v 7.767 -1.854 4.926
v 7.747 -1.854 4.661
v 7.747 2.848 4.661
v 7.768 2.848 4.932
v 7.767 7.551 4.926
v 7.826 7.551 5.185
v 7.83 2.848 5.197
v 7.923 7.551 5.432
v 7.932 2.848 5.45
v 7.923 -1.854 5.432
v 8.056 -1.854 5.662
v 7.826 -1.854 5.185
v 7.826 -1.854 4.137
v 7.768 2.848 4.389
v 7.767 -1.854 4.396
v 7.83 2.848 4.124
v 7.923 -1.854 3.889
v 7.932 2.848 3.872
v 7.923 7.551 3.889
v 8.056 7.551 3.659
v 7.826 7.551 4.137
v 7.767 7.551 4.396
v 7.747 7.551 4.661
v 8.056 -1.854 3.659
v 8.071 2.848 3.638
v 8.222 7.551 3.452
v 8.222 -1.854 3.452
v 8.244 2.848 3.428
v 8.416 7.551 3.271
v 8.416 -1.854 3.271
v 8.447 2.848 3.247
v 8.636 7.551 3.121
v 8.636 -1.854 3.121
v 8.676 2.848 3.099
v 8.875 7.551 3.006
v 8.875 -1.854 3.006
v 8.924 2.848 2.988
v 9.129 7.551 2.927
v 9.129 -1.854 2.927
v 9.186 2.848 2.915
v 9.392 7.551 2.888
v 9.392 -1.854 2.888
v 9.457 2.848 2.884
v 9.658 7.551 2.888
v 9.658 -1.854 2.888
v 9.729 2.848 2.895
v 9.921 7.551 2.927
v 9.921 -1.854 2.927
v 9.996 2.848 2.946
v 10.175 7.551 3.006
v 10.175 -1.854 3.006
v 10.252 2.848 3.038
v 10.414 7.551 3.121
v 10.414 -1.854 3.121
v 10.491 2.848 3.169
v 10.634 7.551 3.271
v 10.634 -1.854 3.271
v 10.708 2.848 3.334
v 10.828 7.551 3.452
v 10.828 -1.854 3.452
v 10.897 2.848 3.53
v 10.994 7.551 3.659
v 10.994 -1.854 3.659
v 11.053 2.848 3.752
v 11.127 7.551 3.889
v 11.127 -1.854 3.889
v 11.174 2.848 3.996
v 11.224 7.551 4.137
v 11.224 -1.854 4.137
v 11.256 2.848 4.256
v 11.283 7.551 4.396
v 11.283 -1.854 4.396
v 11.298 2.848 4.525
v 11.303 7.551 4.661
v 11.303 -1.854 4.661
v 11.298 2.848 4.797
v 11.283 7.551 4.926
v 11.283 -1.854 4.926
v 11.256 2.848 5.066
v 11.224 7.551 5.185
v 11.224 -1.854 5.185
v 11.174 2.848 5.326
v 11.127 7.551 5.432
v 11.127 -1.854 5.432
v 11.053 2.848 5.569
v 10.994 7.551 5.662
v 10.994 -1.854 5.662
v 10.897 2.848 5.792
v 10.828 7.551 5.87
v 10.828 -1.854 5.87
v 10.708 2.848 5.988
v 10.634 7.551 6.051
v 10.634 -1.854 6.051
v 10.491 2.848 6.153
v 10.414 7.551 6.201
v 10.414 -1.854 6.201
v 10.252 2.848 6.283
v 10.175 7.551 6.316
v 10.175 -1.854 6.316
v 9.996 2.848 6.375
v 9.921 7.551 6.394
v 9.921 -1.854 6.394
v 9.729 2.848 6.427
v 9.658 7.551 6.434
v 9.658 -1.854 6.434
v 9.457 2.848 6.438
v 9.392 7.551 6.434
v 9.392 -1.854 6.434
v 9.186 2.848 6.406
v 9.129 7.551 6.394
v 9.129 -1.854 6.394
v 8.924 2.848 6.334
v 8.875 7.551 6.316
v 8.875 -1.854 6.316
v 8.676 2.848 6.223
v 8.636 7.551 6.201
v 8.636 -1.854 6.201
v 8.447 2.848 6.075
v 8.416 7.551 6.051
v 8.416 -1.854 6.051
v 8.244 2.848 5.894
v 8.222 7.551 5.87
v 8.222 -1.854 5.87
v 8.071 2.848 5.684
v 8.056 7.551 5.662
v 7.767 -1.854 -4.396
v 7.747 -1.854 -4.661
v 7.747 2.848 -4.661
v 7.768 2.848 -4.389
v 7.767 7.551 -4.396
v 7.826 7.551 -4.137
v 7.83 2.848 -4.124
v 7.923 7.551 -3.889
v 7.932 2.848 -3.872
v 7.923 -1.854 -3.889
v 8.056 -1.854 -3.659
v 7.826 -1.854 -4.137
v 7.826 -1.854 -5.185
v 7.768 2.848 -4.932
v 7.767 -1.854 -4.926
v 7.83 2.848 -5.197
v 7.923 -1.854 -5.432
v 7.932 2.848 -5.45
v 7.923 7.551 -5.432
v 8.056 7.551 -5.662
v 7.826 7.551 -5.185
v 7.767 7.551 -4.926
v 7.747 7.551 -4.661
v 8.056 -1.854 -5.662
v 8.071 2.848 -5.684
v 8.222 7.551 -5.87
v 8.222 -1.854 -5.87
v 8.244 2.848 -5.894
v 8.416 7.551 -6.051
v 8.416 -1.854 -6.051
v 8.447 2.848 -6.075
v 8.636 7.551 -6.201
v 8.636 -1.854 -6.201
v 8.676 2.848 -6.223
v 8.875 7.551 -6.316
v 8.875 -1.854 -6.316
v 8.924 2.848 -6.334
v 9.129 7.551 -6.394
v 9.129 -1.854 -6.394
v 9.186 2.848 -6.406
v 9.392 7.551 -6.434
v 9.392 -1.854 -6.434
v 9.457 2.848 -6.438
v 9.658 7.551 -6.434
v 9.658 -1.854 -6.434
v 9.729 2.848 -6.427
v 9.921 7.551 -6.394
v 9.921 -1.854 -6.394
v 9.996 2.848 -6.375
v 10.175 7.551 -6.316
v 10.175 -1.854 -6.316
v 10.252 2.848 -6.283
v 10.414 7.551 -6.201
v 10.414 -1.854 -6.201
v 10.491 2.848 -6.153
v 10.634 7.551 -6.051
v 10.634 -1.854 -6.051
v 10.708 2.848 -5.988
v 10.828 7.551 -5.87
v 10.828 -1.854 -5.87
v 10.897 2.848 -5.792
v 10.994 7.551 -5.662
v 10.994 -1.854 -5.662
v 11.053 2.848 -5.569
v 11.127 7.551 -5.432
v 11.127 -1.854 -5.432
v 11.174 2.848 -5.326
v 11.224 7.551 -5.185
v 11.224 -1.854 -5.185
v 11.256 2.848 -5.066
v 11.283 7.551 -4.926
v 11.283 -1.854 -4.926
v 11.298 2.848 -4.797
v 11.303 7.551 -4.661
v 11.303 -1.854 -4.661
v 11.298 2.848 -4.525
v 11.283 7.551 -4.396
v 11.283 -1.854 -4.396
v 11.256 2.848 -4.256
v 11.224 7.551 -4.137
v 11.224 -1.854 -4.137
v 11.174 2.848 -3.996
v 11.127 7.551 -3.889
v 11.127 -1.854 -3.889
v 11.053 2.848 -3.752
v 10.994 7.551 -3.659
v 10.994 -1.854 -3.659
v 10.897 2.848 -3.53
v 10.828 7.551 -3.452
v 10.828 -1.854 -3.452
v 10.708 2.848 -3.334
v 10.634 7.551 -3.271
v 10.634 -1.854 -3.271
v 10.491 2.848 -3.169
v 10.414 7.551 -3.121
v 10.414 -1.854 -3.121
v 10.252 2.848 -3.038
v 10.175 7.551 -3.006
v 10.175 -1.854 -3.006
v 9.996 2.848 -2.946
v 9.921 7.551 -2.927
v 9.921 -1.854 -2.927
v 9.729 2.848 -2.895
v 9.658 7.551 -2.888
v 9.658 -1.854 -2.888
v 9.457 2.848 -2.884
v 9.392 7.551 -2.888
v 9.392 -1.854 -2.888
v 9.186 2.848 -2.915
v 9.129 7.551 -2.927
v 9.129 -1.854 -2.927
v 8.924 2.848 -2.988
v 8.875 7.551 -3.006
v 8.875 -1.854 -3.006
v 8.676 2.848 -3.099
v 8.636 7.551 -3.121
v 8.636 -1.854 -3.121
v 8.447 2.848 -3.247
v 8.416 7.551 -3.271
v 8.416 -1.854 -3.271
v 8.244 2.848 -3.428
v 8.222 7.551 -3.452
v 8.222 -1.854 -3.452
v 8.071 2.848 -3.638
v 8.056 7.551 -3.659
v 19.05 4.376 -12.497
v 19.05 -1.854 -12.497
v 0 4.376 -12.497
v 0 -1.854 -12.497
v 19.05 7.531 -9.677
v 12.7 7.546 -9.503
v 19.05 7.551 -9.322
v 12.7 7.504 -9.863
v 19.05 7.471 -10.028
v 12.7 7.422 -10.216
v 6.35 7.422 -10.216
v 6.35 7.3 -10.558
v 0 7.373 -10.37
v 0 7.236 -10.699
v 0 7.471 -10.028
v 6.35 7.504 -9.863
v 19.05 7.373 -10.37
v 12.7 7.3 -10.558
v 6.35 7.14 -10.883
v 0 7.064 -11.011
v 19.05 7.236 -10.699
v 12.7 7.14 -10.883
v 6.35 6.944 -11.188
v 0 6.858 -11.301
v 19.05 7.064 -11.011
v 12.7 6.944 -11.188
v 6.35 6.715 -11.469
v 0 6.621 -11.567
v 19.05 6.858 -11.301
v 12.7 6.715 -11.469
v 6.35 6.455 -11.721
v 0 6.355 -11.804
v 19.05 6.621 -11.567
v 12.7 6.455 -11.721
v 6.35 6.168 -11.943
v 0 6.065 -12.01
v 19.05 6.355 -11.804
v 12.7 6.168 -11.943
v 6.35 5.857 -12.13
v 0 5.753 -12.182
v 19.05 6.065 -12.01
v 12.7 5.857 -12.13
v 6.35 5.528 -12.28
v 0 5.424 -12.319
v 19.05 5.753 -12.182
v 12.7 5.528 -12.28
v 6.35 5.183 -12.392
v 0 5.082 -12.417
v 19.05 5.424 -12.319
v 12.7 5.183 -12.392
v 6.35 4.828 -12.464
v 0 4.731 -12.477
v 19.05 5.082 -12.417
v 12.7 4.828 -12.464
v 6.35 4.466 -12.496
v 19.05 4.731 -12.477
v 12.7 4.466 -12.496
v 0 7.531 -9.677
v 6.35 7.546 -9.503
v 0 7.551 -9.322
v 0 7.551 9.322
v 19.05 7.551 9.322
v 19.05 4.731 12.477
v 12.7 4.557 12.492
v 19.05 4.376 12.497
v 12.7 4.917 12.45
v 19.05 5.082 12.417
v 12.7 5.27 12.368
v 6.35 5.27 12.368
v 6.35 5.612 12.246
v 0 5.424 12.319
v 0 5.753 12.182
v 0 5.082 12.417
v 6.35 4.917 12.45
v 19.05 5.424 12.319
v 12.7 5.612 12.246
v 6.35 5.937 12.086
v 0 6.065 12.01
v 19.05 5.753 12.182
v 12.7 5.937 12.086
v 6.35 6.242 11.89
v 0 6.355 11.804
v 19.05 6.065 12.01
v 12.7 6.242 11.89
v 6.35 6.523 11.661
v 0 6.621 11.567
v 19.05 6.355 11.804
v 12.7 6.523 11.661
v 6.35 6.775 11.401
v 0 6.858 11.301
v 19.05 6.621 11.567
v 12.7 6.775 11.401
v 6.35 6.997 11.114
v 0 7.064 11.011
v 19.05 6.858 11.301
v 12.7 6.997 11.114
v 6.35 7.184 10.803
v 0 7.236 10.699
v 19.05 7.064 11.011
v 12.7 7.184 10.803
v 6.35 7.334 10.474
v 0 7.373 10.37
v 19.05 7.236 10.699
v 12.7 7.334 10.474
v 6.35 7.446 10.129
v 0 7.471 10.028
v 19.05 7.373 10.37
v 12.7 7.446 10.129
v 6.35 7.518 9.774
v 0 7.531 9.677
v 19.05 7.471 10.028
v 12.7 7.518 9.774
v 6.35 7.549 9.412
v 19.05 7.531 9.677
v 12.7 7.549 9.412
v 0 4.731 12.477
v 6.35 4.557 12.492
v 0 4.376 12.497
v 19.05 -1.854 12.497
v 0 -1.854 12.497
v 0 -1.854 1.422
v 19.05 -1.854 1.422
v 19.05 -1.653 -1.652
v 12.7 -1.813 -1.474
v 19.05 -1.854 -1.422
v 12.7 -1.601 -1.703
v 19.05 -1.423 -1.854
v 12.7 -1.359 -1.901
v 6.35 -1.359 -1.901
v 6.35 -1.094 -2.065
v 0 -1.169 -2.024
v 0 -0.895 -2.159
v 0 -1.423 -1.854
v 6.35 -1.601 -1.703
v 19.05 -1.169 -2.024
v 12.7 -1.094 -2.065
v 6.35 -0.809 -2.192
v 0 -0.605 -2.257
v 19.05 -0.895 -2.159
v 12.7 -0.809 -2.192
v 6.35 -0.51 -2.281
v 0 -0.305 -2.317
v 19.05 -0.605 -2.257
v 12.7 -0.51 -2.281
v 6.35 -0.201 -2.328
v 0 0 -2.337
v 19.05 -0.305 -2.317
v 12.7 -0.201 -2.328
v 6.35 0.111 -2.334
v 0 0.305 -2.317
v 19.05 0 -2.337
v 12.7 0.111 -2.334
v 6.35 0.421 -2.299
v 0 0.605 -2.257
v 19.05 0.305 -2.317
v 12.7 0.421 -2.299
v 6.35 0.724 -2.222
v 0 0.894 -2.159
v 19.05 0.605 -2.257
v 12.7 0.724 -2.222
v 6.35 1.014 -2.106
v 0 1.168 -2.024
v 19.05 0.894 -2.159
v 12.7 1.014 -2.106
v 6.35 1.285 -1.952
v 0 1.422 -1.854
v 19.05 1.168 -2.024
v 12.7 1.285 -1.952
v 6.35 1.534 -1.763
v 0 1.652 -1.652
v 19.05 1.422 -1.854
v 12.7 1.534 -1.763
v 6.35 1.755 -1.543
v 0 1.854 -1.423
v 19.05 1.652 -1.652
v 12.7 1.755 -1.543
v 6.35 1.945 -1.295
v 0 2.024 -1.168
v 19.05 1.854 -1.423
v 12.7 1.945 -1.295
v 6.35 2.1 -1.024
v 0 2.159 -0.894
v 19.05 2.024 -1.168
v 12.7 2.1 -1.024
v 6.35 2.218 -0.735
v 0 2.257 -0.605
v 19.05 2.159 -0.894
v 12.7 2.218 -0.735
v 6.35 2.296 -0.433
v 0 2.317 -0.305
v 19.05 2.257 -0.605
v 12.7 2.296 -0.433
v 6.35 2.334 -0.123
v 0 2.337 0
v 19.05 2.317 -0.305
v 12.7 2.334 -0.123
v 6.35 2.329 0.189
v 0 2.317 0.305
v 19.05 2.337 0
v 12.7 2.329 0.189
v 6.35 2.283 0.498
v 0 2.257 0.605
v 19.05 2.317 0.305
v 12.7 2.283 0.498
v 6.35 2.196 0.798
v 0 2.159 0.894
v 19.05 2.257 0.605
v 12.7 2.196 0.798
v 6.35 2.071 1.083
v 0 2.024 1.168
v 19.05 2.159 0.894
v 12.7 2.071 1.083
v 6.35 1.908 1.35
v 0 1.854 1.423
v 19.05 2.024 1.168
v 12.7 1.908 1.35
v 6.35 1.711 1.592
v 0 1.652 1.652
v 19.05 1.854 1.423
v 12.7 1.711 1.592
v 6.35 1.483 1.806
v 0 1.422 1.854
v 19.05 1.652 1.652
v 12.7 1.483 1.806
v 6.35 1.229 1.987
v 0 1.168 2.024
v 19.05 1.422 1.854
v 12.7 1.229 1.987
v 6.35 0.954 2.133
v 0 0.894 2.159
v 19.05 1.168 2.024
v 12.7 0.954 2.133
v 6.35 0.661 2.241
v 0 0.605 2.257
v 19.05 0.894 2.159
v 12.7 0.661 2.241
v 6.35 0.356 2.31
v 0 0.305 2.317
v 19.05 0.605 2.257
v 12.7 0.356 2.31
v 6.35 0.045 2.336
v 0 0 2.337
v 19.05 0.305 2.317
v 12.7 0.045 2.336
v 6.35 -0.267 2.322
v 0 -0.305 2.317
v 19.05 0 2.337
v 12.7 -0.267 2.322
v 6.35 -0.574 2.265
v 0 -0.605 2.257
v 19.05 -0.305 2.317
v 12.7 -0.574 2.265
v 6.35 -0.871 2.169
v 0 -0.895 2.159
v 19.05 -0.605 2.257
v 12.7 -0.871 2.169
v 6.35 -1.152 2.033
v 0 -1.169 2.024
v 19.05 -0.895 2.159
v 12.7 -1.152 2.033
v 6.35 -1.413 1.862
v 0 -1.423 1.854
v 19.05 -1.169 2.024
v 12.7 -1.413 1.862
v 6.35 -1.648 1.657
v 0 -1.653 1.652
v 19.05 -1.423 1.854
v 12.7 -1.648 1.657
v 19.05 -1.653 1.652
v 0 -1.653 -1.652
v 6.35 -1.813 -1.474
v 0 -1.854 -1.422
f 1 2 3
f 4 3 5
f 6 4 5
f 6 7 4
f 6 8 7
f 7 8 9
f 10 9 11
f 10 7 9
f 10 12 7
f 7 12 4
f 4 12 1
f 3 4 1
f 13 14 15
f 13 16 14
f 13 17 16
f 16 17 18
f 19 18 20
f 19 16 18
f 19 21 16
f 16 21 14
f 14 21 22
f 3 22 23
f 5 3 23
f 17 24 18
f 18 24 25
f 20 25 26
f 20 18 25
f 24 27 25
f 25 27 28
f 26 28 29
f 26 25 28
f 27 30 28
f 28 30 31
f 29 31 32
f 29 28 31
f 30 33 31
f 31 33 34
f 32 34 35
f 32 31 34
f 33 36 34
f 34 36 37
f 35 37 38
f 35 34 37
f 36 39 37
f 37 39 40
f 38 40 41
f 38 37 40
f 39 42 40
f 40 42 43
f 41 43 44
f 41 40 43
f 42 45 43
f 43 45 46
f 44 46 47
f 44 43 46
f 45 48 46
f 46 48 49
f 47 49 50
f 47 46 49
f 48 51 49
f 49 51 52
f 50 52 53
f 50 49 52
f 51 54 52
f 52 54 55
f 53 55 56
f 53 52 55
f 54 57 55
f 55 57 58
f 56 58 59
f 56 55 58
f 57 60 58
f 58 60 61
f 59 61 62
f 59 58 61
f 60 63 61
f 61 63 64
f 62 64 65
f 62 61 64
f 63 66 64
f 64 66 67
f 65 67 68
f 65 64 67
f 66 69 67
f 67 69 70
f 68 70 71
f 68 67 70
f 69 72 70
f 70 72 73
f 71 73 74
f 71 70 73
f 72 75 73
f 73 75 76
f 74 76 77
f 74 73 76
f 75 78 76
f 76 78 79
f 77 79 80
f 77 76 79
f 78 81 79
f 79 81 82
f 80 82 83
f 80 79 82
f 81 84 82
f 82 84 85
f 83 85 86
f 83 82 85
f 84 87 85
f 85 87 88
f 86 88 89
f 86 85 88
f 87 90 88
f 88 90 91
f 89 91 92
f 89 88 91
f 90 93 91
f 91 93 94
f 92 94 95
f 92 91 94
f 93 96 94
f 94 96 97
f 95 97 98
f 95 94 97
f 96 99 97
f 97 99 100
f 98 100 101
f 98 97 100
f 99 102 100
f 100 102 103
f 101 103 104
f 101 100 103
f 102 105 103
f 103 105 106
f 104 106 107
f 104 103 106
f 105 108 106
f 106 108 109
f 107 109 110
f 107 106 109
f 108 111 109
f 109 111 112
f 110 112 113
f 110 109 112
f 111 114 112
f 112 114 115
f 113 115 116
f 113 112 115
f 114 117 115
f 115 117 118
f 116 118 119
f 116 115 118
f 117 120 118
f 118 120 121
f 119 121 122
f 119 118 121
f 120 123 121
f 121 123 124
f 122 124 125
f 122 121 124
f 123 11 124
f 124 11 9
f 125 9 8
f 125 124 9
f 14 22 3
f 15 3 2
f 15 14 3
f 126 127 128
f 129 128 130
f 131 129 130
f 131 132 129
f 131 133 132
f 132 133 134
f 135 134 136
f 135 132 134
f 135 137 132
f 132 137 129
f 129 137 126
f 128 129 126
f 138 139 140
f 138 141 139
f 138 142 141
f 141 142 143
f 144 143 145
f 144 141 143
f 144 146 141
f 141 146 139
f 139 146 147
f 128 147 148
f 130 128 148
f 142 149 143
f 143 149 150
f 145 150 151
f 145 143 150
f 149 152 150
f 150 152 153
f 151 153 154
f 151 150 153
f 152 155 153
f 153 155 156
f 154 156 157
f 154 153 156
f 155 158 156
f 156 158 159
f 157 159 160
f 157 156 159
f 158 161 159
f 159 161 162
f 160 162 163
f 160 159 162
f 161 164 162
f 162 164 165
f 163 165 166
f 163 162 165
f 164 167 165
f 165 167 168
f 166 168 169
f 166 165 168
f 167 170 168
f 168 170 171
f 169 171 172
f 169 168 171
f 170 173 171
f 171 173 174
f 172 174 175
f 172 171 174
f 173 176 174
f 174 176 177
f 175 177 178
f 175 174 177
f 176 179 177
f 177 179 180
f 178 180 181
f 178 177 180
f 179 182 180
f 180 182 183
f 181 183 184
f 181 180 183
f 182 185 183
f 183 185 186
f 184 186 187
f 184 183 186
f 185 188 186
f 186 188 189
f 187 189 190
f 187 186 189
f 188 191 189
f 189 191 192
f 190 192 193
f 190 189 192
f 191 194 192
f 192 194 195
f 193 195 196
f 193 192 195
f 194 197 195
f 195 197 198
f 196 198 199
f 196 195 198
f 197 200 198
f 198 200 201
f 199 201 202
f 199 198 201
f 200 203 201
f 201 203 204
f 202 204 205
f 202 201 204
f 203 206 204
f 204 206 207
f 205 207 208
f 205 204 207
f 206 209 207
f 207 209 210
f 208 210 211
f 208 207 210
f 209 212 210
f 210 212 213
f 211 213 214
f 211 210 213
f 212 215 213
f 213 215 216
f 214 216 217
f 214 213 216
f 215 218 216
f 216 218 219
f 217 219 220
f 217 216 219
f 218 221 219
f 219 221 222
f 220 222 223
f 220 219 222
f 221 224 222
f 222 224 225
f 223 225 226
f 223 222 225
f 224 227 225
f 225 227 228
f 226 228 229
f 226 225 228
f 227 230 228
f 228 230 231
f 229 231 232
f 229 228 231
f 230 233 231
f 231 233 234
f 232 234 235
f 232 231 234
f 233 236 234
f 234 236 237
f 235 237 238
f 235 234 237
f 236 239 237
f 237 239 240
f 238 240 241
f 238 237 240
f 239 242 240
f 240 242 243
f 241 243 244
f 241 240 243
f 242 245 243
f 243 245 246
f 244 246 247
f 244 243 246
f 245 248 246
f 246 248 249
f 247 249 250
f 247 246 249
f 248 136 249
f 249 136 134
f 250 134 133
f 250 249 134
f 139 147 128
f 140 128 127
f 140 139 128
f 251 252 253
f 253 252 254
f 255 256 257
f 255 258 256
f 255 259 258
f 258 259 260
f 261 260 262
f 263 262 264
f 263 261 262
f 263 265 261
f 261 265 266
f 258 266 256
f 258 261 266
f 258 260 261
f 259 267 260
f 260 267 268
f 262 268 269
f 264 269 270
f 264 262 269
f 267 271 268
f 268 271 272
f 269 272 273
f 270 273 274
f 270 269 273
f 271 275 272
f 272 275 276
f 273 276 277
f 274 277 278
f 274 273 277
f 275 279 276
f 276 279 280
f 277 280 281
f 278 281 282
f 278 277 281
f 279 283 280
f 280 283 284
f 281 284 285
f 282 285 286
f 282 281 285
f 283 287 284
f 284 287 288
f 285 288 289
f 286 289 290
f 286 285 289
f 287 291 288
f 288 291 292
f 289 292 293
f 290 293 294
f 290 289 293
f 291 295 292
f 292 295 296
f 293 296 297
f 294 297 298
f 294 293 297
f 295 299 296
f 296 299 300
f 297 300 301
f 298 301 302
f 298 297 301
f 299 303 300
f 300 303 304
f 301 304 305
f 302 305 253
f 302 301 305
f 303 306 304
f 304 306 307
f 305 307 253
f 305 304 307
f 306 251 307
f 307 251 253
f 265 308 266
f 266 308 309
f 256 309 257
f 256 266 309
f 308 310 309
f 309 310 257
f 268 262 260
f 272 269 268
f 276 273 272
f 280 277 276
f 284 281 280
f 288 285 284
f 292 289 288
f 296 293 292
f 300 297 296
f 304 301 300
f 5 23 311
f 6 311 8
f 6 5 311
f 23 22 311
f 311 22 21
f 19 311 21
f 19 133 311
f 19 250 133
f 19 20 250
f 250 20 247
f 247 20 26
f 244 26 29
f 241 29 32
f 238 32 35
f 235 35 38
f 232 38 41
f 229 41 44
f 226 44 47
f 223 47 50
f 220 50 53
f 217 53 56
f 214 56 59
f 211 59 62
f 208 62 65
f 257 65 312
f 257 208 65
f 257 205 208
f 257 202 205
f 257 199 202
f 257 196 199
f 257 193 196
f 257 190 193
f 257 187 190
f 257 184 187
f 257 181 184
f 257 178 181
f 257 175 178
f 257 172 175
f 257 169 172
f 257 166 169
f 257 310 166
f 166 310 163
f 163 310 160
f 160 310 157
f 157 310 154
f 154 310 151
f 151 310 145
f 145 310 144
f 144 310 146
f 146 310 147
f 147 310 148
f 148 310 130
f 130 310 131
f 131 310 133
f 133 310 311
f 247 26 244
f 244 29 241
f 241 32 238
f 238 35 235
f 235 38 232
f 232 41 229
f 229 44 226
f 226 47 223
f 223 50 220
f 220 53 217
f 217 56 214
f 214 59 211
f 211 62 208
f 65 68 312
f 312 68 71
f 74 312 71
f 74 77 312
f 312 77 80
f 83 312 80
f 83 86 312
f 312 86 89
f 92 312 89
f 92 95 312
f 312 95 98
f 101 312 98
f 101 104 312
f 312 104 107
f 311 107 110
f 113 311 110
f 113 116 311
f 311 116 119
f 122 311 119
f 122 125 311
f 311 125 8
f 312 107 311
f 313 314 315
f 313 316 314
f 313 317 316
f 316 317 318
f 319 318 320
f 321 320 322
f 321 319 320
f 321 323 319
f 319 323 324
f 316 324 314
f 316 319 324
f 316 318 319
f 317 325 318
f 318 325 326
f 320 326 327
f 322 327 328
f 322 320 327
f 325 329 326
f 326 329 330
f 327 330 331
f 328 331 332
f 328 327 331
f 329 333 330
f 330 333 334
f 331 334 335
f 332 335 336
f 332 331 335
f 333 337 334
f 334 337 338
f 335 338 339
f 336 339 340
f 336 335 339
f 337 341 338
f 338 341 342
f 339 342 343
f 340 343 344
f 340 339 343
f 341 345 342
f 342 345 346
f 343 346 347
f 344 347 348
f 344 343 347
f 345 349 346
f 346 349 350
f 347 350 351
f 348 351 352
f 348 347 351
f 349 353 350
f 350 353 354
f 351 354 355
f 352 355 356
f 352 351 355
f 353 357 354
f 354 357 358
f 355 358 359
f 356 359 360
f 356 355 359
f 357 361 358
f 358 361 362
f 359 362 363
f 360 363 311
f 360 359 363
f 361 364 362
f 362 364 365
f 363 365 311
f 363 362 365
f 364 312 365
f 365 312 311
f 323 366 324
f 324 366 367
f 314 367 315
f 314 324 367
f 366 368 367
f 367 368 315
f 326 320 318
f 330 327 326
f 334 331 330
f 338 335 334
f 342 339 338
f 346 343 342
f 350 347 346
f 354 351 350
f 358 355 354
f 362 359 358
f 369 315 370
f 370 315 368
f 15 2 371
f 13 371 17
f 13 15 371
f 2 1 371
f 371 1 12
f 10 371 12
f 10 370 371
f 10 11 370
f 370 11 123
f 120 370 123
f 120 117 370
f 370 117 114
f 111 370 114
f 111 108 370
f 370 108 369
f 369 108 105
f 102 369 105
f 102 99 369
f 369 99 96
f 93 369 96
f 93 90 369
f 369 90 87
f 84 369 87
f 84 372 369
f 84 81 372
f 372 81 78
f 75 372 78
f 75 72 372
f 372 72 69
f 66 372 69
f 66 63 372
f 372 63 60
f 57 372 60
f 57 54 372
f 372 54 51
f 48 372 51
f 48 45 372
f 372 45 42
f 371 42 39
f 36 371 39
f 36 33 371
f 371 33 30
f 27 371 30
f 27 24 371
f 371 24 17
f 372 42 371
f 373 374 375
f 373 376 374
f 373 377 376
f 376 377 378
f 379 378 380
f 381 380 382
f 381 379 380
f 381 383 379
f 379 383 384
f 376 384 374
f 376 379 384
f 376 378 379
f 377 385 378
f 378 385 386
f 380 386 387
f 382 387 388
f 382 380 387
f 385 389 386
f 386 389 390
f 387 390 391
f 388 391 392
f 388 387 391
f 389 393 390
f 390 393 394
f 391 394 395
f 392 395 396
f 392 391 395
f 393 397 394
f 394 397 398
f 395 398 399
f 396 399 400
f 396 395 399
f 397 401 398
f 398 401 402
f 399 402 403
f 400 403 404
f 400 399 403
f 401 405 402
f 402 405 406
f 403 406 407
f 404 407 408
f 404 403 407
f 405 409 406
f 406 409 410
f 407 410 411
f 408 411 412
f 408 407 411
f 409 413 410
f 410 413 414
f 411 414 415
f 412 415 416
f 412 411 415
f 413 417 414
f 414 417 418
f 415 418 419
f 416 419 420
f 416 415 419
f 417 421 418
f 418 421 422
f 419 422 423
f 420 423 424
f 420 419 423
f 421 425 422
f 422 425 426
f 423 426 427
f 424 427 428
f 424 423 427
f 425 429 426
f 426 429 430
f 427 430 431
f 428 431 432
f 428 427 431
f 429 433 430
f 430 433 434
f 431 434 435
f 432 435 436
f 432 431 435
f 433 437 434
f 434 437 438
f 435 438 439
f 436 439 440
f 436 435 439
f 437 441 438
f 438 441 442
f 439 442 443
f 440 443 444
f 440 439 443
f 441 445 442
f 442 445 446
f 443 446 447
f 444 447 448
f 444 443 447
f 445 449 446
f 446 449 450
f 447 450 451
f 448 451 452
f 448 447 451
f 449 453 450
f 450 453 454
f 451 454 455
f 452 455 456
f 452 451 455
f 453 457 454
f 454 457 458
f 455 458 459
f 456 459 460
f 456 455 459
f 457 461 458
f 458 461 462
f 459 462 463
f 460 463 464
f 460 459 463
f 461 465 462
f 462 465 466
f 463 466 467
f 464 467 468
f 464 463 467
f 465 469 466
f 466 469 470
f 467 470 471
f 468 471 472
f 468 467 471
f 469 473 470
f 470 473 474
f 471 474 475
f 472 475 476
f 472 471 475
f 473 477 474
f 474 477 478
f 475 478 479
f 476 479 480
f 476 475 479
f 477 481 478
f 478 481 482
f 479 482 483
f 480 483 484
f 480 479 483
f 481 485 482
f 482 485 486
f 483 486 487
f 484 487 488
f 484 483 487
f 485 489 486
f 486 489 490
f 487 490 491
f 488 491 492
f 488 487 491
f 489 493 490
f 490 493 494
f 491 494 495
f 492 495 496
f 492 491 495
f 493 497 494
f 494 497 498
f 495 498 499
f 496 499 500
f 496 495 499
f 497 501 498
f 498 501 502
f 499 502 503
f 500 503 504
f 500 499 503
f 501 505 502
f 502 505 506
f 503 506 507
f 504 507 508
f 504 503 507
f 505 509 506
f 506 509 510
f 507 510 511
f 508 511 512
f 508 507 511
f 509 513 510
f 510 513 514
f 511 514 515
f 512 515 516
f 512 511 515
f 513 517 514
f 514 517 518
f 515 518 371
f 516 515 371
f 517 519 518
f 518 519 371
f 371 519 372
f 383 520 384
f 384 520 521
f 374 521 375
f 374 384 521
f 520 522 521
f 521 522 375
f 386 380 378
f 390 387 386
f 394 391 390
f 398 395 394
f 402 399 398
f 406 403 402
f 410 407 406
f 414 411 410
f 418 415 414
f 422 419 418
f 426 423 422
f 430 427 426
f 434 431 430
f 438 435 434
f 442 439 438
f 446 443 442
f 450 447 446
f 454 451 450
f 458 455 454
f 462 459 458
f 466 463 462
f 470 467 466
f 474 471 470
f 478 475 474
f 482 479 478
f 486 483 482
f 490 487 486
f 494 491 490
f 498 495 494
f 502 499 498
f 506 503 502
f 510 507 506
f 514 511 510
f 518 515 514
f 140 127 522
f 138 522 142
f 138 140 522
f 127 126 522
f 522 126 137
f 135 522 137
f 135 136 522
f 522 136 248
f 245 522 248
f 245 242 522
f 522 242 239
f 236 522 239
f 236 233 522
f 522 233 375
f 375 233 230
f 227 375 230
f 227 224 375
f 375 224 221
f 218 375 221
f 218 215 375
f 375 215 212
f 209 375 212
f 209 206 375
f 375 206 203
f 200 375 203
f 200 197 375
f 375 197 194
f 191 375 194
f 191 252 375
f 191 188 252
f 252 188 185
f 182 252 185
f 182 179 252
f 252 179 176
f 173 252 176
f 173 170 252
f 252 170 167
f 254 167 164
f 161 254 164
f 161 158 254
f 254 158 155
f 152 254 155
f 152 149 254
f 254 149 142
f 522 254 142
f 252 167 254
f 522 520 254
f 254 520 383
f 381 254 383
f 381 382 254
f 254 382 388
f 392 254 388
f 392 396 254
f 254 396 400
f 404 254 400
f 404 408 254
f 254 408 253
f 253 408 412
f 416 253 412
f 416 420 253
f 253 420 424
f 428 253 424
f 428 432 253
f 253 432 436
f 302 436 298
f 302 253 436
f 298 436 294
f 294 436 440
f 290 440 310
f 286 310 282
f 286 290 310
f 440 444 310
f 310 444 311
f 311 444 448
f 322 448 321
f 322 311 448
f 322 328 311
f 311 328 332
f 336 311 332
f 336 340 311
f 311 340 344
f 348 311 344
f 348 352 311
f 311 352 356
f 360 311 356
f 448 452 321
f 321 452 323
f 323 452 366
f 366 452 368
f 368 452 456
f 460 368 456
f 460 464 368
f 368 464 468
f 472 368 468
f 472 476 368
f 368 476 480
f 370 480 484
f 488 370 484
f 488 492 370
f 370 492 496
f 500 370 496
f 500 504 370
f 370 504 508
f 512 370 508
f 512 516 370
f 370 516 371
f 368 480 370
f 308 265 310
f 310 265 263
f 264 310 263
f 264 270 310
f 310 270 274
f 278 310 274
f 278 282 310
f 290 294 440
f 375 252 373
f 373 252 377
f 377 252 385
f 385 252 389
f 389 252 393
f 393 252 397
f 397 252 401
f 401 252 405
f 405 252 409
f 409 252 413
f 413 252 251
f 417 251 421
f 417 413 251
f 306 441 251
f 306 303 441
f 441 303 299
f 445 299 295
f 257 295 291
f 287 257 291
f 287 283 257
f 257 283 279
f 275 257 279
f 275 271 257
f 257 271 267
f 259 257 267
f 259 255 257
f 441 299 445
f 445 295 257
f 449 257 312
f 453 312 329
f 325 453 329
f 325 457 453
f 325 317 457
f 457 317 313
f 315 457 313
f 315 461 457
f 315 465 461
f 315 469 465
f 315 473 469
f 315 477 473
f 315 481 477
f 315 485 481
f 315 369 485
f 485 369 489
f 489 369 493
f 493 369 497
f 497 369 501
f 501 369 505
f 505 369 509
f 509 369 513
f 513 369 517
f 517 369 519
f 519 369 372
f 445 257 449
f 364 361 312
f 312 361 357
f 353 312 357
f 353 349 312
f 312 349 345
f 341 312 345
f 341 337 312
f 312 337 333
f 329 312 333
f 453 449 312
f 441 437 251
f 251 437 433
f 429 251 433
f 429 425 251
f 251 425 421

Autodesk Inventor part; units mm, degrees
ref_plane "YZ Plane" through (0, 0, 0) normal (1, 0, 0) x (0, 1, 0)
ref_plane "XZ Plane" through (0, 0, 0) normal (0, 1, 0) x (-1, 0, 0)
ref_plane "XY Plane" through (0, 0, 0) normal (0, 0, 1) x (1, 0, 0)
sketch "Sketch1" plane through (0, 0, 0) normal (1, 0, 0) x (0, 1, 0)
  arc A0 (-1.8542, -1.4222) -> (-1.8542, 1.4222) centre (0, 0) ccw
  line L0 (-2.4782, 12.4968) -> (4.3758, 12.4968)
  line L1 (7.5508, 9.3218) -> (7.5508, -9.3218)
  line L2 (4.3758, -12.4968) -> (-1.8542, -12.4968)
  line L3 (-1.8542, 12.4968) -> (-2.4782, 12.4968)
  line L4 (2.3368, 0) -> (2.3368, -12.4968) construction
  line L5 (0, 0) -> (3.6666, 0) construction
  line L6 (3.6666, 0) -> (3.6666, 12.4968) construction
  line L7 (3.6666, 0) -> (3.6666, -12.4968) construction
  arc A1 (7.5508, 9.3218) -> (4.3758, 12.4968) centre (4.3758, 9.3218) ccw
  arc A2 (4.3758, -12.4968) -> (7.5508, -9.3218) centre (4.3758, -9.3218) ccw
  line L8 (-1.8542, -12.4968) -> (-1.8542, -1.4222)
  line L9 (-1.8542, 1.4222) -> (-1.8542, 12.4968)
  dimension "d0" = 4.6736
  dimension "d4" = 10.16
  dimension "d5" = 3.175
extrude "Extrusion1" add sketch "Sketch1" along normal blind 19.05
sketch "Sketch2" plane through (0, 7.5508, 9.3218) normal (0, 1, 0) x (1, 0, 0)
  line L0 (0, 18.6436) -> (0, 0) construction
  line L1 (0, 0) -> (19.05, 0) construction
  line L2 (19.05, 18.6436) -> (19.05, 0) construction
  line L3 (0, 18.6436) -> (19.05, 18.6436) construction
  line L4 (0, 9.3218) -> (19.05, 9.3218) construction
  line L5 (9.525, 9.3218) -> (9.525, 18.6436) construction
  line L6 (0, 18.6436) -> (19.05, 18.6436) construction
  line L7 (9.525, 9.3218) -> (9.525, 0) construction
  line L8 (0, 0) -> (19.05, 0) construction
  circle A0 centre (9.525, 13.9827) radius 1.778
  circle A1 centre (9.525, 4.6609) radius 1.778
  dimension "d8" = 3.556
extrude "Extrusion2" cut sketch "Sketch2" against normal blind 19.05
properties part number "axle holder"
